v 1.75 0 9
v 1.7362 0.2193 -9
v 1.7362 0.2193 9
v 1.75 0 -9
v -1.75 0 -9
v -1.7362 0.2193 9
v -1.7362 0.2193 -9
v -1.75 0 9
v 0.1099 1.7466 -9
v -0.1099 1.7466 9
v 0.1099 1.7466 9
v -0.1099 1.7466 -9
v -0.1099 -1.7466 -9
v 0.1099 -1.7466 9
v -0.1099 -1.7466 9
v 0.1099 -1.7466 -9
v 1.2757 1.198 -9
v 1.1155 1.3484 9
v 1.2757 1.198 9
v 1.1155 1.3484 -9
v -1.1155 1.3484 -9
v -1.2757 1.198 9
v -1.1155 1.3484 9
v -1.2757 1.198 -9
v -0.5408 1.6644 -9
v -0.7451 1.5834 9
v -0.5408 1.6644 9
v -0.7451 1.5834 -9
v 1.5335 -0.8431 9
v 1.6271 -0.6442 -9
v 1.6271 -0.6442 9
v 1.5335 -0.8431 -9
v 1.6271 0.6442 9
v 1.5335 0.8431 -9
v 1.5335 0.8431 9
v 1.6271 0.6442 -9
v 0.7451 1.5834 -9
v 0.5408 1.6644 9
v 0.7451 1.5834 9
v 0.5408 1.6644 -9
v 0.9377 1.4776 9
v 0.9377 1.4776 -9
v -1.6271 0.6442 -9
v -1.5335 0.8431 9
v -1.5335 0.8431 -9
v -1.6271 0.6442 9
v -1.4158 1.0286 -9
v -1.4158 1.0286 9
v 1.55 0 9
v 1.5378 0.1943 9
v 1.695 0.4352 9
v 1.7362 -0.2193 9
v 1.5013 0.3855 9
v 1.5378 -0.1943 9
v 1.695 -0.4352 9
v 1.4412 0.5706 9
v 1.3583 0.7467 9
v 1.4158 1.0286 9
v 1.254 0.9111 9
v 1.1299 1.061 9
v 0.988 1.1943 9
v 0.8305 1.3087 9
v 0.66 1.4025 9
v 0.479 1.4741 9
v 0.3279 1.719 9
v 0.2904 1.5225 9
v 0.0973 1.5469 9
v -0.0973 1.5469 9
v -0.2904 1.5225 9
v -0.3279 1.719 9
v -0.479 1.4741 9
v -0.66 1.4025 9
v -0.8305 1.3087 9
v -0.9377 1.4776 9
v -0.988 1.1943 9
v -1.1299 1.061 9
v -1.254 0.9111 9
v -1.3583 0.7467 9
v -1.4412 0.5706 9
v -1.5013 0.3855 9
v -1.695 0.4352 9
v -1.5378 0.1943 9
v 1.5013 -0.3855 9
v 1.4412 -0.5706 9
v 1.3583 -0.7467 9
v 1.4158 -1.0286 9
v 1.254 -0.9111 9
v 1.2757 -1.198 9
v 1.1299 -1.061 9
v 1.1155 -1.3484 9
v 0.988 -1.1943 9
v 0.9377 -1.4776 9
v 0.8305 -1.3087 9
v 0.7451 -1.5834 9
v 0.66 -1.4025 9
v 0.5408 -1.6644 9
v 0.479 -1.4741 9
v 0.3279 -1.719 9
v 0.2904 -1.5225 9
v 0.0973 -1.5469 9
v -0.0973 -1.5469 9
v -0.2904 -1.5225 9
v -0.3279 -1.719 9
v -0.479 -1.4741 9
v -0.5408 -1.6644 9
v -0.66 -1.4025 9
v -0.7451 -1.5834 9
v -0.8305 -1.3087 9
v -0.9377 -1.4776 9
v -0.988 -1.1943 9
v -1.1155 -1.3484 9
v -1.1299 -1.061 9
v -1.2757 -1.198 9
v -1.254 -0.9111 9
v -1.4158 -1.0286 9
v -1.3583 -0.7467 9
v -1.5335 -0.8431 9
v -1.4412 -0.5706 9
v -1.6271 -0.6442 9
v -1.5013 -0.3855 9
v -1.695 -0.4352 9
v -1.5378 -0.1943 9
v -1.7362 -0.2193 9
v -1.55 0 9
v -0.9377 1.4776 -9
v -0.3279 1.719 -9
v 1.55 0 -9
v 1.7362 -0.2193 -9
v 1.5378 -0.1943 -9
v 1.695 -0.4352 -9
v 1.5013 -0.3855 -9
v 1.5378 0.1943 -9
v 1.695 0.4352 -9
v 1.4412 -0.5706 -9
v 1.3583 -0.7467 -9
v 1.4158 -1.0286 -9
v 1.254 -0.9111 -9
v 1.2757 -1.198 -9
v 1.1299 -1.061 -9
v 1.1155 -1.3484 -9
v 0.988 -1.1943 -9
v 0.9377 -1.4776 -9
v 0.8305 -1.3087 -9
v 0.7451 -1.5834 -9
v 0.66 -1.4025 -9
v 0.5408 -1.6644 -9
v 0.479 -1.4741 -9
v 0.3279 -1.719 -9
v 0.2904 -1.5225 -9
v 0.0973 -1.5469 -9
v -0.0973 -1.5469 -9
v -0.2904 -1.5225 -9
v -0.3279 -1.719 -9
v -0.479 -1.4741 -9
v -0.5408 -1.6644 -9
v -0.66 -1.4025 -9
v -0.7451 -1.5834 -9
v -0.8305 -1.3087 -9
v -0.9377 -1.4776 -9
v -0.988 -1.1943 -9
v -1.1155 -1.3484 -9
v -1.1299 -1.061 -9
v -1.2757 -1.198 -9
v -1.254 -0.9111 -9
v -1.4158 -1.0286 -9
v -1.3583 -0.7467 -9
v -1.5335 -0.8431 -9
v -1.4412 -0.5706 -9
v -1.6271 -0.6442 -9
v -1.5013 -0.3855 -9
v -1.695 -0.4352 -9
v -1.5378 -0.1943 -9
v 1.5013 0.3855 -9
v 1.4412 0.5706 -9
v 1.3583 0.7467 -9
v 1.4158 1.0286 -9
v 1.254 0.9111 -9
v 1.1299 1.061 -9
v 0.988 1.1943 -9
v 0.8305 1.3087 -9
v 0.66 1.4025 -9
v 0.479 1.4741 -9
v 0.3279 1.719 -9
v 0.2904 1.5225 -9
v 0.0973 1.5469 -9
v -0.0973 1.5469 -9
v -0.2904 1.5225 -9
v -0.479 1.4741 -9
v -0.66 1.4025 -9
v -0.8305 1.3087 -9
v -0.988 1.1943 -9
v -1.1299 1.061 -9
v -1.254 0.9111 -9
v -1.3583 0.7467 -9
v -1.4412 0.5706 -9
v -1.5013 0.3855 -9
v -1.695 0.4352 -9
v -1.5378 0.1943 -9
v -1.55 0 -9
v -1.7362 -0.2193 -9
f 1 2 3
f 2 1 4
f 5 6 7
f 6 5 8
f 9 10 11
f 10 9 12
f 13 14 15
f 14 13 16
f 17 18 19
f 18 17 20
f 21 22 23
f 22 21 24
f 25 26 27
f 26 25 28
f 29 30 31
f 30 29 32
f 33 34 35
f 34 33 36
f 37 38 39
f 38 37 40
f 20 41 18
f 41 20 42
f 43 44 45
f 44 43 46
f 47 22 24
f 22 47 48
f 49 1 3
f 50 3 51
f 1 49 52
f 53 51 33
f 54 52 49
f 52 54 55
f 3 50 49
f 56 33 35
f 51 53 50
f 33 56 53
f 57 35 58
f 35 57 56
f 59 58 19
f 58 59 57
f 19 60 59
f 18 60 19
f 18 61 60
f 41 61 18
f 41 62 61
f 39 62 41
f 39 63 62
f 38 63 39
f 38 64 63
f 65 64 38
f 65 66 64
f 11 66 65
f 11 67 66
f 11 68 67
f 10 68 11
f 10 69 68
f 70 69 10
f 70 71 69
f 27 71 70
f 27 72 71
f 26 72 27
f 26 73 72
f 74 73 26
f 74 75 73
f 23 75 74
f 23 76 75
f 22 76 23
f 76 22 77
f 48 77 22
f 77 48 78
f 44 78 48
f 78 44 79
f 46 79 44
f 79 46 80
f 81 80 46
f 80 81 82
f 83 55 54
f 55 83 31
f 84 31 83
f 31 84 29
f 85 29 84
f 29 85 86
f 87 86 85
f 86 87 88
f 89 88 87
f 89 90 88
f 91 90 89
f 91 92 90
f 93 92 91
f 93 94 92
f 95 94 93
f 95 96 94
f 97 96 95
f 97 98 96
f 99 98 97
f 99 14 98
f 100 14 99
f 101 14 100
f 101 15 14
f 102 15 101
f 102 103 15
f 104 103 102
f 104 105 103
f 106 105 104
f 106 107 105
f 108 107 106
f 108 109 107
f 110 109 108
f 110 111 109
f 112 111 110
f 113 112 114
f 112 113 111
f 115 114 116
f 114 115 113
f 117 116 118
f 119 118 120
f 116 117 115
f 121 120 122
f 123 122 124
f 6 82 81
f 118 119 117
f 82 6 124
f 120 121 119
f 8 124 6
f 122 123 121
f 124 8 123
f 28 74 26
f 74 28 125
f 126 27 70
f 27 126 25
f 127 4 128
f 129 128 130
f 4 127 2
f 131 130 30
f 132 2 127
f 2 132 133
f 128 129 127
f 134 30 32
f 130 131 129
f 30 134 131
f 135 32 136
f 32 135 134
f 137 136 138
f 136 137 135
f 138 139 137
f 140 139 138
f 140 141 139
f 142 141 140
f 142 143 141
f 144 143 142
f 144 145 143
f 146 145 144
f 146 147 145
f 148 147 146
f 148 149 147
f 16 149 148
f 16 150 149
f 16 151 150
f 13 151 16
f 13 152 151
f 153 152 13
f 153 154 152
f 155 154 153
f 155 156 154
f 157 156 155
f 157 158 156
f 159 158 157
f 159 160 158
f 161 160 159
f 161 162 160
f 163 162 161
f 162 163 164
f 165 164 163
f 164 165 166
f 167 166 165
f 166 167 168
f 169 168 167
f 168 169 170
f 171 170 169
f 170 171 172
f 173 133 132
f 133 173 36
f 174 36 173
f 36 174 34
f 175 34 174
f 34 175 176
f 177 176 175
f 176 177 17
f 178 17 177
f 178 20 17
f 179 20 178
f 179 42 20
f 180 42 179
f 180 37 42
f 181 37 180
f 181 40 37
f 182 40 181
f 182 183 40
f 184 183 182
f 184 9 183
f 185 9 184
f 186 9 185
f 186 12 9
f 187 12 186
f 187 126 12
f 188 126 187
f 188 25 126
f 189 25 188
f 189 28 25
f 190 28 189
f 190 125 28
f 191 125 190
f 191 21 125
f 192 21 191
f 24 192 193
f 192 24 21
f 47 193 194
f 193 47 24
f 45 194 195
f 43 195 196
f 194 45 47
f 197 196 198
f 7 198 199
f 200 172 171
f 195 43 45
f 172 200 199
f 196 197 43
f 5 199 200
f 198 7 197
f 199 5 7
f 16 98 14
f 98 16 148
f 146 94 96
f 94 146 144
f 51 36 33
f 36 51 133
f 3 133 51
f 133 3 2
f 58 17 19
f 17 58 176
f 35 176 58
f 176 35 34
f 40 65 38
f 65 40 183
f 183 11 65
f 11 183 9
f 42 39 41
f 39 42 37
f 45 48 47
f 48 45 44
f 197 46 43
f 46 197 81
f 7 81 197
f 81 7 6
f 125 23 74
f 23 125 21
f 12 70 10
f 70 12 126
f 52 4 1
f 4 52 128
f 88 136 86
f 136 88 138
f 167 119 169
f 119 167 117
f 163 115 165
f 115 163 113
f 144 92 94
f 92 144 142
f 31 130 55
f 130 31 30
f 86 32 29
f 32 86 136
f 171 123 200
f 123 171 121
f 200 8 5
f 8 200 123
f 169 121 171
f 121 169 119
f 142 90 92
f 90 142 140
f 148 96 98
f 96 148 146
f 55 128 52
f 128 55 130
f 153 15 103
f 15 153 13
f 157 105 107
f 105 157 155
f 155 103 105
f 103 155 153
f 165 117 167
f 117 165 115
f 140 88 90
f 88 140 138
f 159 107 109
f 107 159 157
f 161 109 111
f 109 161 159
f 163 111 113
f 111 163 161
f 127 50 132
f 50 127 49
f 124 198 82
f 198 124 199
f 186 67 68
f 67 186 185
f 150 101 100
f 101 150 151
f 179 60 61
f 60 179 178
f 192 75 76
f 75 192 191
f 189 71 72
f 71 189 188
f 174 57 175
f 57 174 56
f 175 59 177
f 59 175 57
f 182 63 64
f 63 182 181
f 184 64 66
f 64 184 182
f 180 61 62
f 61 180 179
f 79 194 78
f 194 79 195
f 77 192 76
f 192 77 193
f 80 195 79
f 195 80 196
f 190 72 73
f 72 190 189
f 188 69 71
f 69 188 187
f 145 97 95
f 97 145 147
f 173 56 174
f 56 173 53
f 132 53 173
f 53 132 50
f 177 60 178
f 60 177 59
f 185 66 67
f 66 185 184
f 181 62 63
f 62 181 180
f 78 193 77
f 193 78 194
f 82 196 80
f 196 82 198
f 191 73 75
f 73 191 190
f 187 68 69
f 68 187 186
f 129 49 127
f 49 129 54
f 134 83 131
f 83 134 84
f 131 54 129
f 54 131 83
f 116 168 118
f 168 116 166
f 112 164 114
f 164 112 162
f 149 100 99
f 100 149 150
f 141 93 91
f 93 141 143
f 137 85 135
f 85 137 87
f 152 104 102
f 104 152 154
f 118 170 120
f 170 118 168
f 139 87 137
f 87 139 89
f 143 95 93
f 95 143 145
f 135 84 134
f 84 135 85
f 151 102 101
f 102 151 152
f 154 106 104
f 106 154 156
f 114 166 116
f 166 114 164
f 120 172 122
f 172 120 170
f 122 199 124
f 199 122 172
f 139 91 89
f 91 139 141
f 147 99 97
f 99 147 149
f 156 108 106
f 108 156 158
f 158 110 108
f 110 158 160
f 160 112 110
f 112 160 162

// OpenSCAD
$fn = 50;


difference() {
	union() {
		translate(v = [0, 0, -9.0000000000]) {
			cylinder(h = 18, r = 1.7500000000);
		}
	}
	union() {
		translate(v = [0, 0, -100.0000000000]) {
			cylinder(h = 200, r = 1.5500000000);
		}
	}
}
